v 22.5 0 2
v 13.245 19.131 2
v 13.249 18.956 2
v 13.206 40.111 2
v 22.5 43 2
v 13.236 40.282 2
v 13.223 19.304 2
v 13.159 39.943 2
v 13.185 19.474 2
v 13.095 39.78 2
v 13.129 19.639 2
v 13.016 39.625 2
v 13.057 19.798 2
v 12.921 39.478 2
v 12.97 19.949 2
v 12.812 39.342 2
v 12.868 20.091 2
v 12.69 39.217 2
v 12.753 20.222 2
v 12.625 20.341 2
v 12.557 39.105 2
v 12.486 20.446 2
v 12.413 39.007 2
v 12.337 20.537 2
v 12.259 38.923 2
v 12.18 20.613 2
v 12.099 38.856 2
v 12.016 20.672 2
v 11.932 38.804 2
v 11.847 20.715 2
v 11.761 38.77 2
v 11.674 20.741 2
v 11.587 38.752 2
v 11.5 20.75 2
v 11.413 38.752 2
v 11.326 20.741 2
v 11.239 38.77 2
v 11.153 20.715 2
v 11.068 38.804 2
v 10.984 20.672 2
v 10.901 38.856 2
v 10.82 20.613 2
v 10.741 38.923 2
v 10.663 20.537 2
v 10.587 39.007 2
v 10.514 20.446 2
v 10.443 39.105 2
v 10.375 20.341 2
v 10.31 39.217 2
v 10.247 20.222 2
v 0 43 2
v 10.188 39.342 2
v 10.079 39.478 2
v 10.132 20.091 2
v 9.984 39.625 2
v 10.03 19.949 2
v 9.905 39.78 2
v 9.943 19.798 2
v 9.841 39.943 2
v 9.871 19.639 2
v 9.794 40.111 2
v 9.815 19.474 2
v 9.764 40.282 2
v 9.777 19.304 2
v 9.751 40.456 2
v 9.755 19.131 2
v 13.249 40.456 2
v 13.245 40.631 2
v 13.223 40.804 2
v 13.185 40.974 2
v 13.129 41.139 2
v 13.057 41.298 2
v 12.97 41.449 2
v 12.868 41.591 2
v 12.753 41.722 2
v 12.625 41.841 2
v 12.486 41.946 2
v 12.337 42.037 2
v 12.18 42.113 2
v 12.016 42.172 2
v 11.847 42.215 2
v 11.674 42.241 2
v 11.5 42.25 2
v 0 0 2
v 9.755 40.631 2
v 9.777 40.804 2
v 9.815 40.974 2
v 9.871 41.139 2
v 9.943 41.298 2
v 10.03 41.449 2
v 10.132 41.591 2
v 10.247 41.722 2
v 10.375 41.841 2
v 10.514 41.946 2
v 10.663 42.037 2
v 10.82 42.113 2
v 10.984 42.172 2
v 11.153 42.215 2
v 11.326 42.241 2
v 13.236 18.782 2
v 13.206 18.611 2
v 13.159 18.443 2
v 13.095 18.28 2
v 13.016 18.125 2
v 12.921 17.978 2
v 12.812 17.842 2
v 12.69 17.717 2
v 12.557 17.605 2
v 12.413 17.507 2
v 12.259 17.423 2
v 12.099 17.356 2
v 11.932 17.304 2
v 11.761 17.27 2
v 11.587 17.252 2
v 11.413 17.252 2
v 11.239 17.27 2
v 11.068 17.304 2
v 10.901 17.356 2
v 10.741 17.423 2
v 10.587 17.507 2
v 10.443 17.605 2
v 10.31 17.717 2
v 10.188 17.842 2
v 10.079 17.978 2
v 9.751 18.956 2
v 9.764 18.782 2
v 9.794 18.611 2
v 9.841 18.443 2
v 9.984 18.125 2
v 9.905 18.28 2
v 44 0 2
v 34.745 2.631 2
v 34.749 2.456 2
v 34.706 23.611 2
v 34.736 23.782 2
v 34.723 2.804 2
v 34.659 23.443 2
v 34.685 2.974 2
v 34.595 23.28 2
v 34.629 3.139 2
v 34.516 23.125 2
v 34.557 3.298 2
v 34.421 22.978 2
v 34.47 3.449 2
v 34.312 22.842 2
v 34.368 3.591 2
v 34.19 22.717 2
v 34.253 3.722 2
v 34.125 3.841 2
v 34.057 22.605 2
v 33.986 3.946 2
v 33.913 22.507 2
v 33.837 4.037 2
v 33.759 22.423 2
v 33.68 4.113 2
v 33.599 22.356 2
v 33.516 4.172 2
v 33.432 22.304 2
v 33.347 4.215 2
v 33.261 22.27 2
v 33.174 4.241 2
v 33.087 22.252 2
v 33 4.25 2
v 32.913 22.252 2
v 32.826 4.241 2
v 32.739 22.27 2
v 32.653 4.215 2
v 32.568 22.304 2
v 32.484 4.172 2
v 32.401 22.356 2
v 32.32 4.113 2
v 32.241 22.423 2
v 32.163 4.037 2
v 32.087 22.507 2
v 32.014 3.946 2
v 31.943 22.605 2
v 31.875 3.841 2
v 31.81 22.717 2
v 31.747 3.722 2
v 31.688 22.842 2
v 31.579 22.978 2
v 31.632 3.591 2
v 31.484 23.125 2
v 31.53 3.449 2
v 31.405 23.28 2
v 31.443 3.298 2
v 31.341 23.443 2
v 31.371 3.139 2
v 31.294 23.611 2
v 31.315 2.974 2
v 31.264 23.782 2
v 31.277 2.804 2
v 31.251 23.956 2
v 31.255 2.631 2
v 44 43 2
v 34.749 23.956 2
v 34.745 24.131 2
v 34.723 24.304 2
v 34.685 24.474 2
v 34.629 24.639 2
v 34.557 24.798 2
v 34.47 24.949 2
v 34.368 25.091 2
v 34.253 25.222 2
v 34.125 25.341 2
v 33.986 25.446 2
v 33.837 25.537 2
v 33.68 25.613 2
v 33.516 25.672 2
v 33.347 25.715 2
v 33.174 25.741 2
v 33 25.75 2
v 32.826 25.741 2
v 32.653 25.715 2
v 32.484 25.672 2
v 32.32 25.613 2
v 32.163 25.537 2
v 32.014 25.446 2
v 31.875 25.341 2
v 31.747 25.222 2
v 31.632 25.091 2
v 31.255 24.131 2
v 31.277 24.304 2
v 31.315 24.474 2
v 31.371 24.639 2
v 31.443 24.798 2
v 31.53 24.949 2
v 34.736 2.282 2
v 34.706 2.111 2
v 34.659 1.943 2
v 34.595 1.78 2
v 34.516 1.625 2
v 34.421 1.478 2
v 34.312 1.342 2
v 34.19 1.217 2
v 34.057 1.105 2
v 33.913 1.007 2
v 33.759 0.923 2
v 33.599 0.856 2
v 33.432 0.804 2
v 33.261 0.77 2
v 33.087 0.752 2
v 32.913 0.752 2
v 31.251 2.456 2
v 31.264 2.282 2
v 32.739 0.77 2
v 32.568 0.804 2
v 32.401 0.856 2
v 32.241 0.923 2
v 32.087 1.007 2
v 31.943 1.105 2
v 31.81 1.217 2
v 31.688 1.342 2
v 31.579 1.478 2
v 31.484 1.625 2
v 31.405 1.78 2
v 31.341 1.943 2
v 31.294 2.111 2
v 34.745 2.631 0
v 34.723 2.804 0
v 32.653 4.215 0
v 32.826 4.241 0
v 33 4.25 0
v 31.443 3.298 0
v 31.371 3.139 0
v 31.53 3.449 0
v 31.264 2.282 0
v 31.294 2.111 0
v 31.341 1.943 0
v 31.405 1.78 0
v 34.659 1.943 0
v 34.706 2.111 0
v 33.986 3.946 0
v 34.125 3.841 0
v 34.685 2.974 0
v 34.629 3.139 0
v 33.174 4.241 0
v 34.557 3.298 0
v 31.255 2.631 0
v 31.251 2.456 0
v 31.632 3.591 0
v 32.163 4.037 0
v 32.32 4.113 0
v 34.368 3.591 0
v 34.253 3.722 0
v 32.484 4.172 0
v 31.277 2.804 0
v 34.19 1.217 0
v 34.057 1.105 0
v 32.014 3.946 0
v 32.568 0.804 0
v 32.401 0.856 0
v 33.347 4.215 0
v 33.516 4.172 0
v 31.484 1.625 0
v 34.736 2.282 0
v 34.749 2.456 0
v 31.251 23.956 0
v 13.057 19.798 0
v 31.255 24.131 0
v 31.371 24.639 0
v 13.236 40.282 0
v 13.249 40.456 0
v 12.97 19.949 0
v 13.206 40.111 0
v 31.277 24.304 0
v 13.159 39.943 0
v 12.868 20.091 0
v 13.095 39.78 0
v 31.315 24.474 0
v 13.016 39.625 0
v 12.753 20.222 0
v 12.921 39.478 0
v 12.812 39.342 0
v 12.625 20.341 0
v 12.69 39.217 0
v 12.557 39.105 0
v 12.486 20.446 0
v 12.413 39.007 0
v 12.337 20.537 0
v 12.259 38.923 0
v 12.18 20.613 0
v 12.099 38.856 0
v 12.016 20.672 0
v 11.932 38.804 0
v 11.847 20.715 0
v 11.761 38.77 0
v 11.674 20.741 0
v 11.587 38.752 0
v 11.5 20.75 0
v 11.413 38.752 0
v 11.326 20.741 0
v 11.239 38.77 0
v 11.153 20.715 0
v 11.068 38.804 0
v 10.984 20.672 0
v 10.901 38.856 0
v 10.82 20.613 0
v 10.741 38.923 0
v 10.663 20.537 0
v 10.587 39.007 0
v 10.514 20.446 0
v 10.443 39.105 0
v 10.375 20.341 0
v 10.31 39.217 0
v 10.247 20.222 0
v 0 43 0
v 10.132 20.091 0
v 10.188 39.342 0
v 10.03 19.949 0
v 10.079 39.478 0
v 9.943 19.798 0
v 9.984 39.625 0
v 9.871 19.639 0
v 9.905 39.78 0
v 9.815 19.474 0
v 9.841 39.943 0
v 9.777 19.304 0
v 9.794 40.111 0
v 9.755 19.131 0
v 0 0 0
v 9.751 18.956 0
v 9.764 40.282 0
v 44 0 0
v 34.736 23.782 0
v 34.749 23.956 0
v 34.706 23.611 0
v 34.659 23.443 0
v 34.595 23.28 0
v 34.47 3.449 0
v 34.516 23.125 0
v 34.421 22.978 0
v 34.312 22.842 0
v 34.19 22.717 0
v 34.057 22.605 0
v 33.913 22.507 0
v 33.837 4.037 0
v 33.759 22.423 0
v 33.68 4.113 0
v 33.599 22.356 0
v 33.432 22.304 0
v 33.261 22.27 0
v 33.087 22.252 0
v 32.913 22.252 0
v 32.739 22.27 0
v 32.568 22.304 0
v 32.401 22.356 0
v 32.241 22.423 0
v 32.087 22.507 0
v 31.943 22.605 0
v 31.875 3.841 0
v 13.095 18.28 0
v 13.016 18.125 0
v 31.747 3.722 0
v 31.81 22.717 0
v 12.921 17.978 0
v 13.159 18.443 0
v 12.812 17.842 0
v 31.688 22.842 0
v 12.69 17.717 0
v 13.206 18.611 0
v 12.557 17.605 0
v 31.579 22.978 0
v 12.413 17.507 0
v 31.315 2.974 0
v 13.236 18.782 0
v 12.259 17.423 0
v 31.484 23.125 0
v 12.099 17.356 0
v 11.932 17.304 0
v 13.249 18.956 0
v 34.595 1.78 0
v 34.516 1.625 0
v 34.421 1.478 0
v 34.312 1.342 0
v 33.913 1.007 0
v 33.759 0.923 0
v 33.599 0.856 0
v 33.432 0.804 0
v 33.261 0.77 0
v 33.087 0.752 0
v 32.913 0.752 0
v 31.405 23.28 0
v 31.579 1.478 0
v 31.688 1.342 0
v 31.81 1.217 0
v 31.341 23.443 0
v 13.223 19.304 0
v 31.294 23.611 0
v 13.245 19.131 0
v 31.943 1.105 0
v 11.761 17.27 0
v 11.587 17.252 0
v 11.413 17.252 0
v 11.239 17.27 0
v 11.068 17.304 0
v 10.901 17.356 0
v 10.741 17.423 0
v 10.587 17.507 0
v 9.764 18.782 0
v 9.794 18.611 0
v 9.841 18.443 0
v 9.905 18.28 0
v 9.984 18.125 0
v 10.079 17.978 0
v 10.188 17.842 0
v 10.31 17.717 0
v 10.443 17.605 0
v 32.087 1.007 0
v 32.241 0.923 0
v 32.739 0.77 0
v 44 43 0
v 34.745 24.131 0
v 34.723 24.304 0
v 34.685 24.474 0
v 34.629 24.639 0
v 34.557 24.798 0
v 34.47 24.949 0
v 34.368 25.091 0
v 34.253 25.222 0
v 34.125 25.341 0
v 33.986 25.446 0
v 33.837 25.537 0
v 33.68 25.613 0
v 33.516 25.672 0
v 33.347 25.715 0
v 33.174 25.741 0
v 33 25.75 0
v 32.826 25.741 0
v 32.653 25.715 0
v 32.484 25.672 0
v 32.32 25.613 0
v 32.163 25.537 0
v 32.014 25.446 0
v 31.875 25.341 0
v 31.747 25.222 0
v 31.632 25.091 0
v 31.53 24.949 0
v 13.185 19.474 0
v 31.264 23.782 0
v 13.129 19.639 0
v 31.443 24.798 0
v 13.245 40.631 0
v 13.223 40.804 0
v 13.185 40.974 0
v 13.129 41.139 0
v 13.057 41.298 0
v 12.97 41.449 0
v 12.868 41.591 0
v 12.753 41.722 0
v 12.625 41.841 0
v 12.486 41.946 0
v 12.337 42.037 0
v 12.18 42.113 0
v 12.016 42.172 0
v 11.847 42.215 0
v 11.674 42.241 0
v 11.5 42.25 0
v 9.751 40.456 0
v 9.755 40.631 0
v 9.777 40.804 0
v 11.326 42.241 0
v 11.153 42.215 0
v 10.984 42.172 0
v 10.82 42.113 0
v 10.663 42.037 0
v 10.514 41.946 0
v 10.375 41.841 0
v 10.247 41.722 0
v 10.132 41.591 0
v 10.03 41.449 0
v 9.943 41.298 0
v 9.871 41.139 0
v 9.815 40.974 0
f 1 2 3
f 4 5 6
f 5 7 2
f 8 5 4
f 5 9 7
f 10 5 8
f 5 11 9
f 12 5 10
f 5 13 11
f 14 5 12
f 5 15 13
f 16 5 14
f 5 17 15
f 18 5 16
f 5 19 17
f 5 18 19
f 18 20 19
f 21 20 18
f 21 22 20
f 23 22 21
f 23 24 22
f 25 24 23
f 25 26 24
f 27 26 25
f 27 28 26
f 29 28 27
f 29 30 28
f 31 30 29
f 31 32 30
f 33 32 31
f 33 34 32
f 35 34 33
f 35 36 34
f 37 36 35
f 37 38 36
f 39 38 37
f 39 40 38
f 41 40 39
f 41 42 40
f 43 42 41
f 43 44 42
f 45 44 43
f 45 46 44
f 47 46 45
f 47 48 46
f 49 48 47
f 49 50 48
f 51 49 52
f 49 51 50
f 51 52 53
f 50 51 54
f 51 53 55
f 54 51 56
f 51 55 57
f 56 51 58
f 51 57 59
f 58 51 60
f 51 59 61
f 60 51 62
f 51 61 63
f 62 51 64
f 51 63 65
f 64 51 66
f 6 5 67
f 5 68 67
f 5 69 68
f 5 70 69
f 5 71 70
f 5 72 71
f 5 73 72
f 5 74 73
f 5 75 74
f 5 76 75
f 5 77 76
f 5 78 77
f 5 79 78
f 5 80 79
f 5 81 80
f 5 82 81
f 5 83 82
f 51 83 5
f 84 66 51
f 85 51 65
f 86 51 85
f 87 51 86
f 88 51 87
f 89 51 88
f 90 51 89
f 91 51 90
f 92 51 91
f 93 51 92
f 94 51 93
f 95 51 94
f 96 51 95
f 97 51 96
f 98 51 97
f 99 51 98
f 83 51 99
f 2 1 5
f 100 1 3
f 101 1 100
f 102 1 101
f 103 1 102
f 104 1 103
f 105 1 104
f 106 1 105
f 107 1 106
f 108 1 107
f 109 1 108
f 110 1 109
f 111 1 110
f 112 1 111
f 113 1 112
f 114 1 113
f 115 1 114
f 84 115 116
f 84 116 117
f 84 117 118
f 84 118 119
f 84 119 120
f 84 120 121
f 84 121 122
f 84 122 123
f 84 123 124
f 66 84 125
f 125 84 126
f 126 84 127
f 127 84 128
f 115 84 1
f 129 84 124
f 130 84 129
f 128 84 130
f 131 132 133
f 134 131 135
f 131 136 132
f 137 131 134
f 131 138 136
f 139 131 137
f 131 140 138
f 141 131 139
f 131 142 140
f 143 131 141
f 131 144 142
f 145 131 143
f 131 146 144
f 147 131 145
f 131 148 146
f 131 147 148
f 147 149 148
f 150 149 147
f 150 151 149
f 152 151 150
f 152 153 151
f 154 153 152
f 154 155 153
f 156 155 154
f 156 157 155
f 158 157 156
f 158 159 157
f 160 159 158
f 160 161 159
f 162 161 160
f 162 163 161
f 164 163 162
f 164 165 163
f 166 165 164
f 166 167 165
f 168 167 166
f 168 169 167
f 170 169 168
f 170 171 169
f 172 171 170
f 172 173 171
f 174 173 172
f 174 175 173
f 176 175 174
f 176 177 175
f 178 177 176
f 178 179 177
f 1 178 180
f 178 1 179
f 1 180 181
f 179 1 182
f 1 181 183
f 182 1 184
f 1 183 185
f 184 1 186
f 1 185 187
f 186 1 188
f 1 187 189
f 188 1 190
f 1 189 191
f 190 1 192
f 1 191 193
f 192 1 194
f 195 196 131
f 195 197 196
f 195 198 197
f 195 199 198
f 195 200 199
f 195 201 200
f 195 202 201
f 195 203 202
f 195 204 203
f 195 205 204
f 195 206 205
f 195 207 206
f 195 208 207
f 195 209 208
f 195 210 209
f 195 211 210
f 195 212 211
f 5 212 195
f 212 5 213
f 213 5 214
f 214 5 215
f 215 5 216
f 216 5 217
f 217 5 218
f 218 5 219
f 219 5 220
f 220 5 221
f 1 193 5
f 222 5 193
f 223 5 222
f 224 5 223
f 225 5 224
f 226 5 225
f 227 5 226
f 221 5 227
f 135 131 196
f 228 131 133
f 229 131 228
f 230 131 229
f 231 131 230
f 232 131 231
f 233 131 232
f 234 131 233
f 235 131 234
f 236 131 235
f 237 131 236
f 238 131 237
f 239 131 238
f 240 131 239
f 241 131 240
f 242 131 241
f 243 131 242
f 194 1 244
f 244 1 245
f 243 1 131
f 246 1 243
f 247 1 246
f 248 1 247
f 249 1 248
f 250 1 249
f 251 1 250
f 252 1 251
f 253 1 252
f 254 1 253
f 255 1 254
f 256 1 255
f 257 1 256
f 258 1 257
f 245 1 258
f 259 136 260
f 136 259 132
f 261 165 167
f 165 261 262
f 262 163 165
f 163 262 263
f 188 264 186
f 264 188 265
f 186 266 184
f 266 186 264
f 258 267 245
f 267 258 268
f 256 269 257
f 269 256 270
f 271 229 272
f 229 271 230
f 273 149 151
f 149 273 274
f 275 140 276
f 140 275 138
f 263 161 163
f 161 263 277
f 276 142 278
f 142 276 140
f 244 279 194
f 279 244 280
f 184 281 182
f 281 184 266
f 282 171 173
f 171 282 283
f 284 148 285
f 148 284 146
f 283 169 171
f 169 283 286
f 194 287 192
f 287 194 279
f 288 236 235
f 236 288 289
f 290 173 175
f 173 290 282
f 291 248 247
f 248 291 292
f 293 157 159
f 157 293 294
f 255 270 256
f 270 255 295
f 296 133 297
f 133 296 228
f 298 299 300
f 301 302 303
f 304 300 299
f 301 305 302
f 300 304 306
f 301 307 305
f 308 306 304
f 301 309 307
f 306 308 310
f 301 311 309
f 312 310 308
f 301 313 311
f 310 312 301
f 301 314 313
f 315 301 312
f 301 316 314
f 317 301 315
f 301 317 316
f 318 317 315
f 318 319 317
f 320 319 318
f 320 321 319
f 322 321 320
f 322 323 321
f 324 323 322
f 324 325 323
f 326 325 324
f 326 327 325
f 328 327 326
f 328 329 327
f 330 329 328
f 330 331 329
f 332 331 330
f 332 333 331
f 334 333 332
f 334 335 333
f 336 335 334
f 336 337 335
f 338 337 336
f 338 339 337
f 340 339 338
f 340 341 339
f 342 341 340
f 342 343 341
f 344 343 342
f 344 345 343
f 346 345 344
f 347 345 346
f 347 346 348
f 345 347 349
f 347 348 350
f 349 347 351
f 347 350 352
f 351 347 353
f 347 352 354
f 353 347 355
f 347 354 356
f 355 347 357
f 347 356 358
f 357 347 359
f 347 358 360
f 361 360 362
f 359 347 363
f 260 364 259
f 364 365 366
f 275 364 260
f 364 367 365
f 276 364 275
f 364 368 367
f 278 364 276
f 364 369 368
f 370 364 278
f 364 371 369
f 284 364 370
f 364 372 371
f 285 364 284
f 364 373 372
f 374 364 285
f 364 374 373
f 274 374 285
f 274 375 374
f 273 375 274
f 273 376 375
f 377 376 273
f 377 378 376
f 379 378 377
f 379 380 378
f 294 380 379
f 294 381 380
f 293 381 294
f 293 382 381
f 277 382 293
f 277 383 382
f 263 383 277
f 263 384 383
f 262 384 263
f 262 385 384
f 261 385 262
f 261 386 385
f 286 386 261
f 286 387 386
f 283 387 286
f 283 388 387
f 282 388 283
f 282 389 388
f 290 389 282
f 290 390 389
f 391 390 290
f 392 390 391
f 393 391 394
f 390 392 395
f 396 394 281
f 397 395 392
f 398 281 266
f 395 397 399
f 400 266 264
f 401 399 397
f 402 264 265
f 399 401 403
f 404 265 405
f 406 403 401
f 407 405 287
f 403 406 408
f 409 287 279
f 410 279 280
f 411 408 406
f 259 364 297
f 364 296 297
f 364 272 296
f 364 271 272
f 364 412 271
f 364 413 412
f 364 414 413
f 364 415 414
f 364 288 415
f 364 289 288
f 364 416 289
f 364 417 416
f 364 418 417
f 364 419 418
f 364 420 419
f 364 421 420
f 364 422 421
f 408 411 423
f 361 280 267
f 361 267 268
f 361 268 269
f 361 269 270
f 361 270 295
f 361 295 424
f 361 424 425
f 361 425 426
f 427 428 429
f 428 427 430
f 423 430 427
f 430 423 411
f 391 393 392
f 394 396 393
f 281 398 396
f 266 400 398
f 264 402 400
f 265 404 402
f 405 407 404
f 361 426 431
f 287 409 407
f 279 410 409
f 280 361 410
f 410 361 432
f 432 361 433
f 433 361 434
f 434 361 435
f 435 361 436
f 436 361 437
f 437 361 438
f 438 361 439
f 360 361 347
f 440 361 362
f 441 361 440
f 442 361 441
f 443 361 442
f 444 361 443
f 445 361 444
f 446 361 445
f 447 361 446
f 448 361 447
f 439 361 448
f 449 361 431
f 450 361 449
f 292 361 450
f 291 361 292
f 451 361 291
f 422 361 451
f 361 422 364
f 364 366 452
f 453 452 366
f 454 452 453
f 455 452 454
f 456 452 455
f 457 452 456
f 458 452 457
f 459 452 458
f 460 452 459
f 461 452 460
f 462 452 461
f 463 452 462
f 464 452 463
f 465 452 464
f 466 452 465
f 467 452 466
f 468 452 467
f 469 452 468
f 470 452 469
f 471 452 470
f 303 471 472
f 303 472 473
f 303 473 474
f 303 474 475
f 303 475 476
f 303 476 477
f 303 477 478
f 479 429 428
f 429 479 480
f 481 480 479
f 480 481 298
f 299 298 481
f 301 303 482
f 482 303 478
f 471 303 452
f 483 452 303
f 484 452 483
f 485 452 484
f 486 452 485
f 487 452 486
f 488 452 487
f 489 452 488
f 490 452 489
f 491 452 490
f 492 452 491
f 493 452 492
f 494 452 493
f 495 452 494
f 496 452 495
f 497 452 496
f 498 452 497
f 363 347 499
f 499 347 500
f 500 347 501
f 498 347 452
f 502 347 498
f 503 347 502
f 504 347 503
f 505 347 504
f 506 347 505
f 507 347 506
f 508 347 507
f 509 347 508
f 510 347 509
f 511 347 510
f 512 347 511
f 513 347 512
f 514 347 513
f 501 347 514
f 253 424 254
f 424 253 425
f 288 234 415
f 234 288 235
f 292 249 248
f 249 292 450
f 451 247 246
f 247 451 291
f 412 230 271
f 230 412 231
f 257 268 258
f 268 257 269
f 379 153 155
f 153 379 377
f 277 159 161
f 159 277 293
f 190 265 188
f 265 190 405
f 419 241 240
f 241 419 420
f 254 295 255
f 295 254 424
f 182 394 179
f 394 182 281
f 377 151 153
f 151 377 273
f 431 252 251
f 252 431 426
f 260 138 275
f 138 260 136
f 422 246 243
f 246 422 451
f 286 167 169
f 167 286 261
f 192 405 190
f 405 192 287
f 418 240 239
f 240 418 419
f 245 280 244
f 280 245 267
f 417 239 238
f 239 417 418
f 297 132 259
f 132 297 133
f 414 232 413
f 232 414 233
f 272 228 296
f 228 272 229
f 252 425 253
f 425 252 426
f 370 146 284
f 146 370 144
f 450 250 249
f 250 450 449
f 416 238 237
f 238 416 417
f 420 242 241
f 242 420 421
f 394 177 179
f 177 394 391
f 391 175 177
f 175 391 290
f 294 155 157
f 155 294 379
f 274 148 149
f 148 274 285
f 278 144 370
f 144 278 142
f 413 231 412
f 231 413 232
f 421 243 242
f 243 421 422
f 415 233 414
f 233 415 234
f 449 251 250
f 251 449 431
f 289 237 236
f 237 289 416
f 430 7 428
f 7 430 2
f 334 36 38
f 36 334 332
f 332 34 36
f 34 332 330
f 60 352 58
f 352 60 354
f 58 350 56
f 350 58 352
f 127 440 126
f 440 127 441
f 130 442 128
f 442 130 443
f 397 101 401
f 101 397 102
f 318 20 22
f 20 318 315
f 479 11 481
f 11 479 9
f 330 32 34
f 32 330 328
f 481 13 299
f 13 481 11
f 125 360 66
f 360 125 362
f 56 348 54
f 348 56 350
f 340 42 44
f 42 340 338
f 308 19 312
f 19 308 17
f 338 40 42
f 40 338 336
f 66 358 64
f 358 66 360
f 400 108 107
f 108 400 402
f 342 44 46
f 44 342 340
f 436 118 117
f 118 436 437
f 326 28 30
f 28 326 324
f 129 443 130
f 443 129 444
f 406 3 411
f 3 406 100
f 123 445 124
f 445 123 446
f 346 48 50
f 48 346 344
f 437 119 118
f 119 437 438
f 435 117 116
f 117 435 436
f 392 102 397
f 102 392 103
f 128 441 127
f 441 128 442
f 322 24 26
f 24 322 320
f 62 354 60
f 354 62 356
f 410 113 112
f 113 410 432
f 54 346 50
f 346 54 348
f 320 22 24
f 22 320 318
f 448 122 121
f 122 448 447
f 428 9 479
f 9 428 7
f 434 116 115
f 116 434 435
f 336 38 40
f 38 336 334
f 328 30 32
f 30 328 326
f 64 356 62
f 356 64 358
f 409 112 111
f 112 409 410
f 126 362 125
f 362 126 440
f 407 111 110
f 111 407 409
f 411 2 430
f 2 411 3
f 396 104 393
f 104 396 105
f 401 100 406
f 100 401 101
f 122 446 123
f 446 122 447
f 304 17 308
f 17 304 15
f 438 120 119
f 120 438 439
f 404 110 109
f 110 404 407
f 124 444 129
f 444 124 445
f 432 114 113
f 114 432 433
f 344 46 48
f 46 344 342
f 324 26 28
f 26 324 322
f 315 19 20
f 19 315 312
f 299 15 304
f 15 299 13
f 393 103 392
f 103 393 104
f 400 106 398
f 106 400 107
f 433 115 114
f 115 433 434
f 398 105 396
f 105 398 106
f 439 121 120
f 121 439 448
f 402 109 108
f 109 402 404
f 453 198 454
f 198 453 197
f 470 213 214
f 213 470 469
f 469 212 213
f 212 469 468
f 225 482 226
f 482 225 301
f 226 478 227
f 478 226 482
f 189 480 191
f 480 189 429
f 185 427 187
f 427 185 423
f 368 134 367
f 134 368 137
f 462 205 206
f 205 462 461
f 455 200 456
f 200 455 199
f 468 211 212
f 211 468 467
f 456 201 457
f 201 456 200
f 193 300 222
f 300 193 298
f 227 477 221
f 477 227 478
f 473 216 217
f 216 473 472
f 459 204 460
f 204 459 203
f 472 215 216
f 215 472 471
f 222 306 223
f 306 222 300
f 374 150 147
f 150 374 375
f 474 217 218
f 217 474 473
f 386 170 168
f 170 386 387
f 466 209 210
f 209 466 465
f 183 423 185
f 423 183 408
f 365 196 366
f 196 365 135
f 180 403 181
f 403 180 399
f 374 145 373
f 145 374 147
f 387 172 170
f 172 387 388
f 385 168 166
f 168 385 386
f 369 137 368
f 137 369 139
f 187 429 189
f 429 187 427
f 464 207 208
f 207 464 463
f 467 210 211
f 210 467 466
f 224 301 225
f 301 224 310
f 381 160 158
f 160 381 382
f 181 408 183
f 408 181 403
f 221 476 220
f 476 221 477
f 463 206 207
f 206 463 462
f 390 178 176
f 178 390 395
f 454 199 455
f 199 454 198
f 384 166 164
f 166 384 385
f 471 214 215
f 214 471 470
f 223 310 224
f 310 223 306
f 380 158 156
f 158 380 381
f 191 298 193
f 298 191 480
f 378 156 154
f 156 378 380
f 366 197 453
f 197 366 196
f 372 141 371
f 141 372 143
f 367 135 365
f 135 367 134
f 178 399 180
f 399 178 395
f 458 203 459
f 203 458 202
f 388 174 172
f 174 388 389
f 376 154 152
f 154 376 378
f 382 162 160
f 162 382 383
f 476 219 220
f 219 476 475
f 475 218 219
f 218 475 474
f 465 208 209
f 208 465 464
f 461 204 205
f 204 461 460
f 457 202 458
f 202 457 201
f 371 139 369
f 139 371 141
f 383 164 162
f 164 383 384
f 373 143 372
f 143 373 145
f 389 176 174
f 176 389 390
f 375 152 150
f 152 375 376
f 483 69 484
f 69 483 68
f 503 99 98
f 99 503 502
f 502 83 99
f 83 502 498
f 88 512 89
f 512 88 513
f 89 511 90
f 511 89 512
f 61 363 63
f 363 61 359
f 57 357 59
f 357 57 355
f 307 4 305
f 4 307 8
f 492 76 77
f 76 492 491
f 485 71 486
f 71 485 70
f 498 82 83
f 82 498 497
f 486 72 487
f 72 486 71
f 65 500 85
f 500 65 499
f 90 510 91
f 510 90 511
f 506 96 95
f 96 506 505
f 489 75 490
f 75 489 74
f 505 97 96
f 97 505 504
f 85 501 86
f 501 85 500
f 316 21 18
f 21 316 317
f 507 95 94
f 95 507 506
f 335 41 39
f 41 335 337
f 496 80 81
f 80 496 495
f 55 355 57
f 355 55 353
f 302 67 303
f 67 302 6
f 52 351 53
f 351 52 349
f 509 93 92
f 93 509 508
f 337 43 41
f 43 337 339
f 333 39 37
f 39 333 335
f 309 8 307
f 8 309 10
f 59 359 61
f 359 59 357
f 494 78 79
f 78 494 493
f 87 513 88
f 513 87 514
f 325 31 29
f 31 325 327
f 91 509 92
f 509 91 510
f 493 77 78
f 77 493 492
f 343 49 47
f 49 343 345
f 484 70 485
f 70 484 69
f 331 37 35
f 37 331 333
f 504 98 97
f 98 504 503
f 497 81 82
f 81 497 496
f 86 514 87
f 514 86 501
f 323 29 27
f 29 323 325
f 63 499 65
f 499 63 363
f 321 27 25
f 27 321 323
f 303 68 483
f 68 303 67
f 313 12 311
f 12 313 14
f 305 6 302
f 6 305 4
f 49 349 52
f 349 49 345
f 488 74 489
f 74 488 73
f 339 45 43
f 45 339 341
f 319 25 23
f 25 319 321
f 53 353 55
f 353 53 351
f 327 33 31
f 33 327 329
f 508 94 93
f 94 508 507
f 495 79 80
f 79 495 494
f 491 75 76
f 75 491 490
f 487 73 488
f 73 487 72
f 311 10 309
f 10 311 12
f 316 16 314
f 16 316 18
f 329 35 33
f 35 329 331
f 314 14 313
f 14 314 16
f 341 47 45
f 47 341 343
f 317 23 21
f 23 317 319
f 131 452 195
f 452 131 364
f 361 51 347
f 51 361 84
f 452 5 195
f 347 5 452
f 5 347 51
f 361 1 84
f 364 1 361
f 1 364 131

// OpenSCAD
// file: 2_1_buck_converter.scad
// Model
//$fn = 255;
//difference() {
//    bc_w = 21.5;
//    bc_d = 44;
//    bc_h = 13.5;
//    buck_body(bc_w, bc_d, bc_h);
//}

// Buck converter body
module buck_body(width, depth, height) {
    // Main body
    cube([width,depth,height]);
    
    // Motor screw holes
    sh_size = 3.5;
    sh_h = 2;
    translate([2.5,11,-sh_h]) cylinder(d=sh_size,h=sh_h);
    translate([19,32.5,-sh_h]) cylinder(d=sh_size,h=sh_h);
}
// main file
include <2_1_buck_converter.scad>

$fn = 63;
// https://openscad.org/cheatsheet/

// Wall thickness
case_wt = 2;

// Buck plate start
bc_w = 44;
bc_d = 21.5;
bc_h = 13.5;

buck_plate();

// Model
module plate(width, depth, offset=[0,0,0]) {
    translate(offset) cube([width,depth,2]);
}

module buck_plate() {
    // Starts at 55.5 mm height
    difference() {
        plate(bc_w, 2*bc_d, [0,0,0]);
        translate([bc_w, 0, case_wt])
        rotate(90, [0,0,1]) buck_body(bc_w, bc_d, bc_h);
        translate([bc_w, bc_d, case_wt])
        rotate(90, [0,0,1]) buck_body(bc_w, bc_d, bc_h);
    }
}
